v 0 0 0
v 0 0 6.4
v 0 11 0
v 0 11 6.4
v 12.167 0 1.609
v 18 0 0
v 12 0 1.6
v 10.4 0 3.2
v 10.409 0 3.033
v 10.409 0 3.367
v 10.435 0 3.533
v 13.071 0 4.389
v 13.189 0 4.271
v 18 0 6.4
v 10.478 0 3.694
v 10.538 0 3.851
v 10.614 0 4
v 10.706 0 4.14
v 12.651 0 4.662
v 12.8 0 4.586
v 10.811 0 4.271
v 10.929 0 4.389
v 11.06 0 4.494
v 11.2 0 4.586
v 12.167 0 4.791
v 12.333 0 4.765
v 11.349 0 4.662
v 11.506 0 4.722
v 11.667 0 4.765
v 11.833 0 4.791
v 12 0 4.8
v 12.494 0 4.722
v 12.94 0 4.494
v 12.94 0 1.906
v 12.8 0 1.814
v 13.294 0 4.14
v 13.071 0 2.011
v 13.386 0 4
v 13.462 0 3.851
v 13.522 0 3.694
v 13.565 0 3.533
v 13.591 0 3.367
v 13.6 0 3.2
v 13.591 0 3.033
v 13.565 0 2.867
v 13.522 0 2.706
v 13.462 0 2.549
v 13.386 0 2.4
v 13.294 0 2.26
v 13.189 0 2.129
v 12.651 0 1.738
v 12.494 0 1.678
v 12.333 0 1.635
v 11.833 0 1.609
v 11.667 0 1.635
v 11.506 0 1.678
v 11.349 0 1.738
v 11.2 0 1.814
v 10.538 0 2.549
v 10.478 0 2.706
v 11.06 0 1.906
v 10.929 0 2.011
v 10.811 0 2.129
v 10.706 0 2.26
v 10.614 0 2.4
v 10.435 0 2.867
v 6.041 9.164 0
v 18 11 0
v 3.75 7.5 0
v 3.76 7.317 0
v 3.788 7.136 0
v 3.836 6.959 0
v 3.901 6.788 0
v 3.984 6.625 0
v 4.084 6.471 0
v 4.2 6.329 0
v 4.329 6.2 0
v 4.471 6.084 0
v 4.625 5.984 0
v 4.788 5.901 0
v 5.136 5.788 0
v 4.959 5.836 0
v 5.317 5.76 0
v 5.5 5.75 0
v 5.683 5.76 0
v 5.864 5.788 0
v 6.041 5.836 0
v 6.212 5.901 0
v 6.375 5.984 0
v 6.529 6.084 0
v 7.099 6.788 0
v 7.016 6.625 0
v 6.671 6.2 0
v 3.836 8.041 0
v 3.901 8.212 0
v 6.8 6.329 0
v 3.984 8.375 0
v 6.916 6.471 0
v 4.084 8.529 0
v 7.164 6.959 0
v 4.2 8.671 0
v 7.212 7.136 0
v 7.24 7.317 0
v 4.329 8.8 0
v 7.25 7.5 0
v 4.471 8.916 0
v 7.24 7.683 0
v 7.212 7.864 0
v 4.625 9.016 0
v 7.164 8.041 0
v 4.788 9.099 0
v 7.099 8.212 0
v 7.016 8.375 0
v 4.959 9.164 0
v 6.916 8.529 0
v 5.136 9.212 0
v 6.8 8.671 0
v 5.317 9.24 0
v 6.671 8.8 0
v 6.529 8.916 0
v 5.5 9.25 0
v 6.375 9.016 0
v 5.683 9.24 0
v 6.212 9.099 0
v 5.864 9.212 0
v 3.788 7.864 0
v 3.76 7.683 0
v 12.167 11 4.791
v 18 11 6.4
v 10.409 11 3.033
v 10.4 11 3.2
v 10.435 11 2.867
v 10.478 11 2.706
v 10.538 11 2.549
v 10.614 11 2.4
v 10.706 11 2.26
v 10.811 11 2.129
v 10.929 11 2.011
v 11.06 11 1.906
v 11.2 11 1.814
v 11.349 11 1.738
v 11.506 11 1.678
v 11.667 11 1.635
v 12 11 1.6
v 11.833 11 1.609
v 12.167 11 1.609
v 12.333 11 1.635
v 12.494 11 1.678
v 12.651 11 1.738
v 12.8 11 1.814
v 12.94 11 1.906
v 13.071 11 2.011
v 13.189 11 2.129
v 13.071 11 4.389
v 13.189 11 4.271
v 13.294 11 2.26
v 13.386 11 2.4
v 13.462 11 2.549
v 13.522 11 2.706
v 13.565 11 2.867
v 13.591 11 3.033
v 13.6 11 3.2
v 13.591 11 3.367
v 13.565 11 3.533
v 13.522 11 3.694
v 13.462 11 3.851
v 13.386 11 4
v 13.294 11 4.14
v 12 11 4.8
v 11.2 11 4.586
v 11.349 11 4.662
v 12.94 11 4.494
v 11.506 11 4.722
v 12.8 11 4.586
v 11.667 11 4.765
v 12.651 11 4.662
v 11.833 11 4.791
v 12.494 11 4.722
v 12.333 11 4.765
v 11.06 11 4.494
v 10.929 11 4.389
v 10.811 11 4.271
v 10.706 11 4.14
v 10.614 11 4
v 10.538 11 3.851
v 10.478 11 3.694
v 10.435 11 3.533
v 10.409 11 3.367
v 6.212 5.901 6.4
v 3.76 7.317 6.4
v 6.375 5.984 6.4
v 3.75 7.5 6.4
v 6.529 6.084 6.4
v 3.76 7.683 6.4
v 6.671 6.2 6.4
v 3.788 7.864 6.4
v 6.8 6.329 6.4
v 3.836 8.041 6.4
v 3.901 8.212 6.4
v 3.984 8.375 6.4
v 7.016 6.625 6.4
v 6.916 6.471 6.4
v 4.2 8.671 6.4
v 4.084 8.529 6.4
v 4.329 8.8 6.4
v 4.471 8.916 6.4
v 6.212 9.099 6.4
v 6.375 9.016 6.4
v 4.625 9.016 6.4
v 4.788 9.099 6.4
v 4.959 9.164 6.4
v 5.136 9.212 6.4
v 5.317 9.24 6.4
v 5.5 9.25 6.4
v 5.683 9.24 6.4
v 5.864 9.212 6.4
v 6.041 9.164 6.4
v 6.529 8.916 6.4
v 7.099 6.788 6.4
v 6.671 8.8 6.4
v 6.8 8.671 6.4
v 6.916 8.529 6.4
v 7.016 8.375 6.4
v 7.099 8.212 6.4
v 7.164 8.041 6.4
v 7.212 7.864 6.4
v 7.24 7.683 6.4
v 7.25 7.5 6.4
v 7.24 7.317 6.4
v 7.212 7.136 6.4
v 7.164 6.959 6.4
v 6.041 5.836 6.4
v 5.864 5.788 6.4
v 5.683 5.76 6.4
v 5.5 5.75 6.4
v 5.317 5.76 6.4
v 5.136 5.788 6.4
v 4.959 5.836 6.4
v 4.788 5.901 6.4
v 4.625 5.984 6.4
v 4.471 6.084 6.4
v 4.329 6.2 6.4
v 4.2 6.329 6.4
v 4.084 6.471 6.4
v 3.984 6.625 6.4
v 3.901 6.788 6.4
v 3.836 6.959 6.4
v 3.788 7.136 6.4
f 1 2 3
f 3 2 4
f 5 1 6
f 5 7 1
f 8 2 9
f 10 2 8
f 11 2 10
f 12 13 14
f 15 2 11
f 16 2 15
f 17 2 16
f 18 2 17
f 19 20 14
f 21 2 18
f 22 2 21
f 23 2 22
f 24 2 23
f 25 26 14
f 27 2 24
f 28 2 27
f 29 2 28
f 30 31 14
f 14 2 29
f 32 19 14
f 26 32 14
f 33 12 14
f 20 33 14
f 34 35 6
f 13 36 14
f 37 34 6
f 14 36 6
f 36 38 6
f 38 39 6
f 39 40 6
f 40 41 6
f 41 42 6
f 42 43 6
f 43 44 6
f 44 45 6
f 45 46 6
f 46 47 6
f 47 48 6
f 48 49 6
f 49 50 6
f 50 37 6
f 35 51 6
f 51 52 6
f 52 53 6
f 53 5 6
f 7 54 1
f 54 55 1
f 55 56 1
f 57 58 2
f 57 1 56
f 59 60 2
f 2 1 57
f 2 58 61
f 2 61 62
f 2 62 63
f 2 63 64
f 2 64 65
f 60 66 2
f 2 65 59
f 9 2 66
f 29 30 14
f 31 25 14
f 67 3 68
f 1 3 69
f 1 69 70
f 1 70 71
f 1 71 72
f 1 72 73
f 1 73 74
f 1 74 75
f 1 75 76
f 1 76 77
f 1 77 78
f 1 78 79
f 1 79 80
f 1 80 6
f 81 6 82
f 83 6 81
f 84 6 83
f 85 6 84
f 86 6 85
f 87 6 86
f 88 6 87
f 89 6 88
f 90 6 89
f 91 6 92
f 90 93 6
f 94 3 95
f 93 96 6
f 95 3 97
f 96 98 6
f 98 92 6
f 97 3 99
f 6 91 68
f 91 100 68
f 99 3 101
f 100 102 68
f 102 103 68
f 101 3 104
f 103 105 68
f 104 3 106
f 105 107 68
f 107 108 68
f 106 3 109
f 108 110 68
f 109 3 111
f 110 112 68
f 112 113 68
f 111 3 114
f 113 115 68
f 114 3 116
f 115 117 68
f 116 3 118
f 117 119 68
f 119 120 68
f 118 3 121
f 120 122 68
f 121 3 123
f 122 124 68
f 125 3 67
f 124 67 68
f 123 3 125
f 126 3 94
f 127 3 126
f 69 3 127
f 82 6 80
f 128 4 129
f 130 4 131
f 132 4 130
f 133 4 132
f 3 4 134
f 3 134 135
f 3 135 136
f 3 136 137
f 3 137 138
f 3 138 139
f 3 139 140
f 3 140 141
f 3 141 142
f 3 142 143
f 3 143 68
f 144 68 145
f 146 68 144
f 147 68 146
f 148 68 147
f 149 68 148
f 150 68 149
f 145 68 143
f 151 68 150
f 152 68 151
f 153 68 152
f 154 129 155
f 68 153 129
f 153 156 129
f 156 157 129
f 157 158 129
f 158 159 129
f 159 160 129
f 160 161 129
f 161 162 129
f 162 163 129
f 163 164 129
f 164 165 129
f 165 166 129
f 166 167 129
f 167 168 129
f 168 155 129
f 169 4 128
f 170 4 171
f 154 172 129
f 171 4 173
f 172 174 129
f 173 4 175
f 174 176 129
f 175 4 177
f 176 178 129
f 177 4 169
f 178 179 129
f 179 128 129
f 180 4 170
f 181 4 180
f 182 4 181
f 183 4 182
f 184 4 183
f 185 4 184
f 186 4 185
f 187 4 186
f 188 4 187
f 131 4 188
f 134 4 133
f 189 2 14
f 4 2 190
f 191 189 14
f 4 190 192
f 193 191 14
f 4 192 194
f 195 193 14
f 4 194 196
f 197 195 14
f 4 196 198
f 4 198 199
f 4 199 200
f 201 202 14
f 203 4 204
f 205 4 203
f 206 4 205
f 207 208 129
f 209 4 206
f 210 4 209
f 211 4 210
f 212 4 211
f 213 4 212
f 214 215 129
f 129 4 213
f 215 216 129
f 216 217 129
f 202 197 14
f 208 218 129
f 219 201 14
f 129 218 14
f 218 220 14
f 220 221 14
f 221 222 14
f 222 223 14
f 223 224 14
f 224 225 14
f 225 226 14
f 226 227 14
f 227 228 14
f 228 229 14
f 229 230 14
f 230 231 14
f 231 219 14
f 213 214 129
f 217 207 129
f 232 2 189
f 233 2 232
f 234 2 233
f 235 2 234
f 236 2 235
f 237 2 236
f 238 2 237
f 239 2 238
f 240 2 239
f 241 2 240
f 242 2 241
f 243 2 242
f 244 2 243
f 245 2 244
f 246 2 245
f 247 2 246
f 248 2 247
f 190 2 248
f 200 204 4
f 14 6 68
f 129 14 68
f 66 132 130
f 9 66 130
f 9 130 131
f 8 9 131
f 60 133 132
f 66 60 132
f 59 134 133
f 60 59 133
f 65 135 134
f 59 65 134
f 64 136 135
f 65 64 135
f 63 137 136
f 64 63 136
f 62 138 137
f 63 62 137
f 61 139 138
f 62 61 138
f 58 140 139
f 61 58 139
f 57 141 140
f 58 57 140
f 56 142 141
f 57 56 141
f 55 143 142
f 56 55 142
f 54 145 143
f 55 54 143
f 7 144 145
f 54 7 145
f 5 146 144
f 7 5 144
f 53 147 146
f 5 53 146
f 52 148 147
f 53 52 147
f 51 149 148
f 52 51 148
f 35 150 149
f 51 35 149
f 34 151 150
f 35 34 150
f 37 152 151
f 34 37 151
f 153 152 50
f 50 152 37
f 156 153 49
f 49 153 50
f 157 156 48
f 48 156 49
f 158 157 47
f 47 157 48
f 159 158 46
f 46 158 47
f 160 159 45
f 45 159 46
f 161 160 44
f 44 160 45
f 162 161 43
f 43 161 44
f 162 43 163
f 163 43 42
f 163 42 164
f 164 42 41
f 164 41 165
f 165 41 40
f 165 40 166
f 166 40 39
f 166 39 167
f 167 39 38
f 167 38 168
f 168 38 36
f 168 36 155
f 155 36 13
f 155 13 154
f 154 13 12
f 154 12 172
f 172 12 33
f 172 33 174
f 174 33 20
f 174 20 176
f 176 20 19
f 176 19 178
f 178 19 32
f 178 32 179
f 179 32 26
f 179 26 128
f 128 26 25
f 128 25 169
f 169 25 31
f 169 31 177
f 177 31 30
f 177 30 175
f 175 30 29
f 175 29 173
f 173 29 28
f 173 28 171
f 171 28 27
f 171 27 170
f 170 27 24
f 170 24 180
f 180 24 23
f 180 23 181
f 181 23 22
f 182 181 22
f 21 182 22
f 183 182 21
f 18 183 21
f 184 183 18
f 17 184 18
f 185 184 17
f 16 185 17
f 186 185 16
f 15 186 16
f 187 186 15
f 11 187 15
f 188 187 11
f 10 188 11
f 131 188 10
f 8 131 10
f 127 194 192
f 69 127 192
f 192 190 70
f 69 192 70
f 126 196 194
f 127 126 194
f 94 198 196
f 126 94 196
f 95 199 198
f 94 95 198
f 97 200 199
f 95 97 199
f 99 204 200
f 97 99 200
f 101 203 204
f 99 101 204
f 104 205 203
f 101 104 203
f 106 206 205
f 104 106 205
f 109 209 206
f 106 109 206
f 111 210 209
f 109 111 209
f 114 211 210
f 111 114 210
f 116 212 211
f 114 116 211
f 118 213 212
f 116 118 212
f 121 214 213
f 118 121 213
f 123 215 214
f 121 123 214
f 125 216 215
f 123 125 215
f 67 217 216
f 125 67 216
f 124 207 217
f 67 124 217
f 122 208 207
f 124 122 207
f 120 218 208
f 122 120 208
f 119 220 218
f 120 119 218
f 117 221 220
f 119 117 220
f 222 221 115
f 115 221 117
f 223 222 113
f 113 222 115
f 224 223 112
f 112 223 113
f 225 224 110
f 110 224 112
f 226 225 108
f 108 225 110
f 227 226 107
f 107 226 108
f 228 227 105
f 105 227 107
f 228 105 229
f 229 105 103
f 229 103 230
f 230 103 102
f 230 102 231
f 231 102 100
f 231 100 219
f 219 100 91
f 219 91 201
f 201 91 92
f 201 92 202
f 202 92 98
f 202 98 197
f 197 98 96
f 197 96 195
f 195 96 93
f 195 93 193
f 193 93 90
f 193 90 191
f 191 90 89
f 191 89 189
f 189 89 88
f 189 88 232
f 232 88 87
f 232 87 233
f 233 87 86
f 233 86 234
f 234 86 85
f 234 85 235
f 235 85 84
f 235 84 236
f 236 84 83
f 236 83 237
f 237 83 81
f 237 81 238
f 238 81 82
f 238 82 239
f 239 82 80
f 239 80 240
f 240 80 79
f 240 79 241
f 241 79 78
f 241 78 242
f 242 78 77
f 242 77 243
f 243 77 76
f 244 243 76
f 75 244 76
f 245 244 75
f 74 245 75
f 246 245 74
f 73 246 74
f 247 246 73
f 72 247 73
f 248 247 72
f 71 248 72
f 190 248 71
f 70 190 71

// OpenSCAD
/*
 * filament guide
 *
 * Ensures the filament feeds into into the extruder strait.
 *
 * Copyright 2012 <b@Zi.iS>
 * License CC BY 3.0
 */
$fn=60;

m3 = 3.2 /2;

guide();

module guide(
	bolt = m3,
	filament = 3.5/2,
	width = 18,
	bolt_offset = 12,
	filament_offset = [
		5.5,
		7.5
	]
) {
	size = [
		width,
		filament_offset[1]+filament*2,
		bolt*4
	];
	
	difference() {
		cube(size);
		translate([
			filament_offset[0],
			filament_offset[1],
			-1
		]) {
			cylinder(
				r = filament,
				h = size[2]+2
			);
		}
		translate([
			bolt_offset,
			-1,
			size[2]/2
		]) {
			rotate([
				-90,
				0,
				0
			]) {
				cylinder(
					r = bolt,
					h = size[1]+2
				);
			}
		}
	}	
}
